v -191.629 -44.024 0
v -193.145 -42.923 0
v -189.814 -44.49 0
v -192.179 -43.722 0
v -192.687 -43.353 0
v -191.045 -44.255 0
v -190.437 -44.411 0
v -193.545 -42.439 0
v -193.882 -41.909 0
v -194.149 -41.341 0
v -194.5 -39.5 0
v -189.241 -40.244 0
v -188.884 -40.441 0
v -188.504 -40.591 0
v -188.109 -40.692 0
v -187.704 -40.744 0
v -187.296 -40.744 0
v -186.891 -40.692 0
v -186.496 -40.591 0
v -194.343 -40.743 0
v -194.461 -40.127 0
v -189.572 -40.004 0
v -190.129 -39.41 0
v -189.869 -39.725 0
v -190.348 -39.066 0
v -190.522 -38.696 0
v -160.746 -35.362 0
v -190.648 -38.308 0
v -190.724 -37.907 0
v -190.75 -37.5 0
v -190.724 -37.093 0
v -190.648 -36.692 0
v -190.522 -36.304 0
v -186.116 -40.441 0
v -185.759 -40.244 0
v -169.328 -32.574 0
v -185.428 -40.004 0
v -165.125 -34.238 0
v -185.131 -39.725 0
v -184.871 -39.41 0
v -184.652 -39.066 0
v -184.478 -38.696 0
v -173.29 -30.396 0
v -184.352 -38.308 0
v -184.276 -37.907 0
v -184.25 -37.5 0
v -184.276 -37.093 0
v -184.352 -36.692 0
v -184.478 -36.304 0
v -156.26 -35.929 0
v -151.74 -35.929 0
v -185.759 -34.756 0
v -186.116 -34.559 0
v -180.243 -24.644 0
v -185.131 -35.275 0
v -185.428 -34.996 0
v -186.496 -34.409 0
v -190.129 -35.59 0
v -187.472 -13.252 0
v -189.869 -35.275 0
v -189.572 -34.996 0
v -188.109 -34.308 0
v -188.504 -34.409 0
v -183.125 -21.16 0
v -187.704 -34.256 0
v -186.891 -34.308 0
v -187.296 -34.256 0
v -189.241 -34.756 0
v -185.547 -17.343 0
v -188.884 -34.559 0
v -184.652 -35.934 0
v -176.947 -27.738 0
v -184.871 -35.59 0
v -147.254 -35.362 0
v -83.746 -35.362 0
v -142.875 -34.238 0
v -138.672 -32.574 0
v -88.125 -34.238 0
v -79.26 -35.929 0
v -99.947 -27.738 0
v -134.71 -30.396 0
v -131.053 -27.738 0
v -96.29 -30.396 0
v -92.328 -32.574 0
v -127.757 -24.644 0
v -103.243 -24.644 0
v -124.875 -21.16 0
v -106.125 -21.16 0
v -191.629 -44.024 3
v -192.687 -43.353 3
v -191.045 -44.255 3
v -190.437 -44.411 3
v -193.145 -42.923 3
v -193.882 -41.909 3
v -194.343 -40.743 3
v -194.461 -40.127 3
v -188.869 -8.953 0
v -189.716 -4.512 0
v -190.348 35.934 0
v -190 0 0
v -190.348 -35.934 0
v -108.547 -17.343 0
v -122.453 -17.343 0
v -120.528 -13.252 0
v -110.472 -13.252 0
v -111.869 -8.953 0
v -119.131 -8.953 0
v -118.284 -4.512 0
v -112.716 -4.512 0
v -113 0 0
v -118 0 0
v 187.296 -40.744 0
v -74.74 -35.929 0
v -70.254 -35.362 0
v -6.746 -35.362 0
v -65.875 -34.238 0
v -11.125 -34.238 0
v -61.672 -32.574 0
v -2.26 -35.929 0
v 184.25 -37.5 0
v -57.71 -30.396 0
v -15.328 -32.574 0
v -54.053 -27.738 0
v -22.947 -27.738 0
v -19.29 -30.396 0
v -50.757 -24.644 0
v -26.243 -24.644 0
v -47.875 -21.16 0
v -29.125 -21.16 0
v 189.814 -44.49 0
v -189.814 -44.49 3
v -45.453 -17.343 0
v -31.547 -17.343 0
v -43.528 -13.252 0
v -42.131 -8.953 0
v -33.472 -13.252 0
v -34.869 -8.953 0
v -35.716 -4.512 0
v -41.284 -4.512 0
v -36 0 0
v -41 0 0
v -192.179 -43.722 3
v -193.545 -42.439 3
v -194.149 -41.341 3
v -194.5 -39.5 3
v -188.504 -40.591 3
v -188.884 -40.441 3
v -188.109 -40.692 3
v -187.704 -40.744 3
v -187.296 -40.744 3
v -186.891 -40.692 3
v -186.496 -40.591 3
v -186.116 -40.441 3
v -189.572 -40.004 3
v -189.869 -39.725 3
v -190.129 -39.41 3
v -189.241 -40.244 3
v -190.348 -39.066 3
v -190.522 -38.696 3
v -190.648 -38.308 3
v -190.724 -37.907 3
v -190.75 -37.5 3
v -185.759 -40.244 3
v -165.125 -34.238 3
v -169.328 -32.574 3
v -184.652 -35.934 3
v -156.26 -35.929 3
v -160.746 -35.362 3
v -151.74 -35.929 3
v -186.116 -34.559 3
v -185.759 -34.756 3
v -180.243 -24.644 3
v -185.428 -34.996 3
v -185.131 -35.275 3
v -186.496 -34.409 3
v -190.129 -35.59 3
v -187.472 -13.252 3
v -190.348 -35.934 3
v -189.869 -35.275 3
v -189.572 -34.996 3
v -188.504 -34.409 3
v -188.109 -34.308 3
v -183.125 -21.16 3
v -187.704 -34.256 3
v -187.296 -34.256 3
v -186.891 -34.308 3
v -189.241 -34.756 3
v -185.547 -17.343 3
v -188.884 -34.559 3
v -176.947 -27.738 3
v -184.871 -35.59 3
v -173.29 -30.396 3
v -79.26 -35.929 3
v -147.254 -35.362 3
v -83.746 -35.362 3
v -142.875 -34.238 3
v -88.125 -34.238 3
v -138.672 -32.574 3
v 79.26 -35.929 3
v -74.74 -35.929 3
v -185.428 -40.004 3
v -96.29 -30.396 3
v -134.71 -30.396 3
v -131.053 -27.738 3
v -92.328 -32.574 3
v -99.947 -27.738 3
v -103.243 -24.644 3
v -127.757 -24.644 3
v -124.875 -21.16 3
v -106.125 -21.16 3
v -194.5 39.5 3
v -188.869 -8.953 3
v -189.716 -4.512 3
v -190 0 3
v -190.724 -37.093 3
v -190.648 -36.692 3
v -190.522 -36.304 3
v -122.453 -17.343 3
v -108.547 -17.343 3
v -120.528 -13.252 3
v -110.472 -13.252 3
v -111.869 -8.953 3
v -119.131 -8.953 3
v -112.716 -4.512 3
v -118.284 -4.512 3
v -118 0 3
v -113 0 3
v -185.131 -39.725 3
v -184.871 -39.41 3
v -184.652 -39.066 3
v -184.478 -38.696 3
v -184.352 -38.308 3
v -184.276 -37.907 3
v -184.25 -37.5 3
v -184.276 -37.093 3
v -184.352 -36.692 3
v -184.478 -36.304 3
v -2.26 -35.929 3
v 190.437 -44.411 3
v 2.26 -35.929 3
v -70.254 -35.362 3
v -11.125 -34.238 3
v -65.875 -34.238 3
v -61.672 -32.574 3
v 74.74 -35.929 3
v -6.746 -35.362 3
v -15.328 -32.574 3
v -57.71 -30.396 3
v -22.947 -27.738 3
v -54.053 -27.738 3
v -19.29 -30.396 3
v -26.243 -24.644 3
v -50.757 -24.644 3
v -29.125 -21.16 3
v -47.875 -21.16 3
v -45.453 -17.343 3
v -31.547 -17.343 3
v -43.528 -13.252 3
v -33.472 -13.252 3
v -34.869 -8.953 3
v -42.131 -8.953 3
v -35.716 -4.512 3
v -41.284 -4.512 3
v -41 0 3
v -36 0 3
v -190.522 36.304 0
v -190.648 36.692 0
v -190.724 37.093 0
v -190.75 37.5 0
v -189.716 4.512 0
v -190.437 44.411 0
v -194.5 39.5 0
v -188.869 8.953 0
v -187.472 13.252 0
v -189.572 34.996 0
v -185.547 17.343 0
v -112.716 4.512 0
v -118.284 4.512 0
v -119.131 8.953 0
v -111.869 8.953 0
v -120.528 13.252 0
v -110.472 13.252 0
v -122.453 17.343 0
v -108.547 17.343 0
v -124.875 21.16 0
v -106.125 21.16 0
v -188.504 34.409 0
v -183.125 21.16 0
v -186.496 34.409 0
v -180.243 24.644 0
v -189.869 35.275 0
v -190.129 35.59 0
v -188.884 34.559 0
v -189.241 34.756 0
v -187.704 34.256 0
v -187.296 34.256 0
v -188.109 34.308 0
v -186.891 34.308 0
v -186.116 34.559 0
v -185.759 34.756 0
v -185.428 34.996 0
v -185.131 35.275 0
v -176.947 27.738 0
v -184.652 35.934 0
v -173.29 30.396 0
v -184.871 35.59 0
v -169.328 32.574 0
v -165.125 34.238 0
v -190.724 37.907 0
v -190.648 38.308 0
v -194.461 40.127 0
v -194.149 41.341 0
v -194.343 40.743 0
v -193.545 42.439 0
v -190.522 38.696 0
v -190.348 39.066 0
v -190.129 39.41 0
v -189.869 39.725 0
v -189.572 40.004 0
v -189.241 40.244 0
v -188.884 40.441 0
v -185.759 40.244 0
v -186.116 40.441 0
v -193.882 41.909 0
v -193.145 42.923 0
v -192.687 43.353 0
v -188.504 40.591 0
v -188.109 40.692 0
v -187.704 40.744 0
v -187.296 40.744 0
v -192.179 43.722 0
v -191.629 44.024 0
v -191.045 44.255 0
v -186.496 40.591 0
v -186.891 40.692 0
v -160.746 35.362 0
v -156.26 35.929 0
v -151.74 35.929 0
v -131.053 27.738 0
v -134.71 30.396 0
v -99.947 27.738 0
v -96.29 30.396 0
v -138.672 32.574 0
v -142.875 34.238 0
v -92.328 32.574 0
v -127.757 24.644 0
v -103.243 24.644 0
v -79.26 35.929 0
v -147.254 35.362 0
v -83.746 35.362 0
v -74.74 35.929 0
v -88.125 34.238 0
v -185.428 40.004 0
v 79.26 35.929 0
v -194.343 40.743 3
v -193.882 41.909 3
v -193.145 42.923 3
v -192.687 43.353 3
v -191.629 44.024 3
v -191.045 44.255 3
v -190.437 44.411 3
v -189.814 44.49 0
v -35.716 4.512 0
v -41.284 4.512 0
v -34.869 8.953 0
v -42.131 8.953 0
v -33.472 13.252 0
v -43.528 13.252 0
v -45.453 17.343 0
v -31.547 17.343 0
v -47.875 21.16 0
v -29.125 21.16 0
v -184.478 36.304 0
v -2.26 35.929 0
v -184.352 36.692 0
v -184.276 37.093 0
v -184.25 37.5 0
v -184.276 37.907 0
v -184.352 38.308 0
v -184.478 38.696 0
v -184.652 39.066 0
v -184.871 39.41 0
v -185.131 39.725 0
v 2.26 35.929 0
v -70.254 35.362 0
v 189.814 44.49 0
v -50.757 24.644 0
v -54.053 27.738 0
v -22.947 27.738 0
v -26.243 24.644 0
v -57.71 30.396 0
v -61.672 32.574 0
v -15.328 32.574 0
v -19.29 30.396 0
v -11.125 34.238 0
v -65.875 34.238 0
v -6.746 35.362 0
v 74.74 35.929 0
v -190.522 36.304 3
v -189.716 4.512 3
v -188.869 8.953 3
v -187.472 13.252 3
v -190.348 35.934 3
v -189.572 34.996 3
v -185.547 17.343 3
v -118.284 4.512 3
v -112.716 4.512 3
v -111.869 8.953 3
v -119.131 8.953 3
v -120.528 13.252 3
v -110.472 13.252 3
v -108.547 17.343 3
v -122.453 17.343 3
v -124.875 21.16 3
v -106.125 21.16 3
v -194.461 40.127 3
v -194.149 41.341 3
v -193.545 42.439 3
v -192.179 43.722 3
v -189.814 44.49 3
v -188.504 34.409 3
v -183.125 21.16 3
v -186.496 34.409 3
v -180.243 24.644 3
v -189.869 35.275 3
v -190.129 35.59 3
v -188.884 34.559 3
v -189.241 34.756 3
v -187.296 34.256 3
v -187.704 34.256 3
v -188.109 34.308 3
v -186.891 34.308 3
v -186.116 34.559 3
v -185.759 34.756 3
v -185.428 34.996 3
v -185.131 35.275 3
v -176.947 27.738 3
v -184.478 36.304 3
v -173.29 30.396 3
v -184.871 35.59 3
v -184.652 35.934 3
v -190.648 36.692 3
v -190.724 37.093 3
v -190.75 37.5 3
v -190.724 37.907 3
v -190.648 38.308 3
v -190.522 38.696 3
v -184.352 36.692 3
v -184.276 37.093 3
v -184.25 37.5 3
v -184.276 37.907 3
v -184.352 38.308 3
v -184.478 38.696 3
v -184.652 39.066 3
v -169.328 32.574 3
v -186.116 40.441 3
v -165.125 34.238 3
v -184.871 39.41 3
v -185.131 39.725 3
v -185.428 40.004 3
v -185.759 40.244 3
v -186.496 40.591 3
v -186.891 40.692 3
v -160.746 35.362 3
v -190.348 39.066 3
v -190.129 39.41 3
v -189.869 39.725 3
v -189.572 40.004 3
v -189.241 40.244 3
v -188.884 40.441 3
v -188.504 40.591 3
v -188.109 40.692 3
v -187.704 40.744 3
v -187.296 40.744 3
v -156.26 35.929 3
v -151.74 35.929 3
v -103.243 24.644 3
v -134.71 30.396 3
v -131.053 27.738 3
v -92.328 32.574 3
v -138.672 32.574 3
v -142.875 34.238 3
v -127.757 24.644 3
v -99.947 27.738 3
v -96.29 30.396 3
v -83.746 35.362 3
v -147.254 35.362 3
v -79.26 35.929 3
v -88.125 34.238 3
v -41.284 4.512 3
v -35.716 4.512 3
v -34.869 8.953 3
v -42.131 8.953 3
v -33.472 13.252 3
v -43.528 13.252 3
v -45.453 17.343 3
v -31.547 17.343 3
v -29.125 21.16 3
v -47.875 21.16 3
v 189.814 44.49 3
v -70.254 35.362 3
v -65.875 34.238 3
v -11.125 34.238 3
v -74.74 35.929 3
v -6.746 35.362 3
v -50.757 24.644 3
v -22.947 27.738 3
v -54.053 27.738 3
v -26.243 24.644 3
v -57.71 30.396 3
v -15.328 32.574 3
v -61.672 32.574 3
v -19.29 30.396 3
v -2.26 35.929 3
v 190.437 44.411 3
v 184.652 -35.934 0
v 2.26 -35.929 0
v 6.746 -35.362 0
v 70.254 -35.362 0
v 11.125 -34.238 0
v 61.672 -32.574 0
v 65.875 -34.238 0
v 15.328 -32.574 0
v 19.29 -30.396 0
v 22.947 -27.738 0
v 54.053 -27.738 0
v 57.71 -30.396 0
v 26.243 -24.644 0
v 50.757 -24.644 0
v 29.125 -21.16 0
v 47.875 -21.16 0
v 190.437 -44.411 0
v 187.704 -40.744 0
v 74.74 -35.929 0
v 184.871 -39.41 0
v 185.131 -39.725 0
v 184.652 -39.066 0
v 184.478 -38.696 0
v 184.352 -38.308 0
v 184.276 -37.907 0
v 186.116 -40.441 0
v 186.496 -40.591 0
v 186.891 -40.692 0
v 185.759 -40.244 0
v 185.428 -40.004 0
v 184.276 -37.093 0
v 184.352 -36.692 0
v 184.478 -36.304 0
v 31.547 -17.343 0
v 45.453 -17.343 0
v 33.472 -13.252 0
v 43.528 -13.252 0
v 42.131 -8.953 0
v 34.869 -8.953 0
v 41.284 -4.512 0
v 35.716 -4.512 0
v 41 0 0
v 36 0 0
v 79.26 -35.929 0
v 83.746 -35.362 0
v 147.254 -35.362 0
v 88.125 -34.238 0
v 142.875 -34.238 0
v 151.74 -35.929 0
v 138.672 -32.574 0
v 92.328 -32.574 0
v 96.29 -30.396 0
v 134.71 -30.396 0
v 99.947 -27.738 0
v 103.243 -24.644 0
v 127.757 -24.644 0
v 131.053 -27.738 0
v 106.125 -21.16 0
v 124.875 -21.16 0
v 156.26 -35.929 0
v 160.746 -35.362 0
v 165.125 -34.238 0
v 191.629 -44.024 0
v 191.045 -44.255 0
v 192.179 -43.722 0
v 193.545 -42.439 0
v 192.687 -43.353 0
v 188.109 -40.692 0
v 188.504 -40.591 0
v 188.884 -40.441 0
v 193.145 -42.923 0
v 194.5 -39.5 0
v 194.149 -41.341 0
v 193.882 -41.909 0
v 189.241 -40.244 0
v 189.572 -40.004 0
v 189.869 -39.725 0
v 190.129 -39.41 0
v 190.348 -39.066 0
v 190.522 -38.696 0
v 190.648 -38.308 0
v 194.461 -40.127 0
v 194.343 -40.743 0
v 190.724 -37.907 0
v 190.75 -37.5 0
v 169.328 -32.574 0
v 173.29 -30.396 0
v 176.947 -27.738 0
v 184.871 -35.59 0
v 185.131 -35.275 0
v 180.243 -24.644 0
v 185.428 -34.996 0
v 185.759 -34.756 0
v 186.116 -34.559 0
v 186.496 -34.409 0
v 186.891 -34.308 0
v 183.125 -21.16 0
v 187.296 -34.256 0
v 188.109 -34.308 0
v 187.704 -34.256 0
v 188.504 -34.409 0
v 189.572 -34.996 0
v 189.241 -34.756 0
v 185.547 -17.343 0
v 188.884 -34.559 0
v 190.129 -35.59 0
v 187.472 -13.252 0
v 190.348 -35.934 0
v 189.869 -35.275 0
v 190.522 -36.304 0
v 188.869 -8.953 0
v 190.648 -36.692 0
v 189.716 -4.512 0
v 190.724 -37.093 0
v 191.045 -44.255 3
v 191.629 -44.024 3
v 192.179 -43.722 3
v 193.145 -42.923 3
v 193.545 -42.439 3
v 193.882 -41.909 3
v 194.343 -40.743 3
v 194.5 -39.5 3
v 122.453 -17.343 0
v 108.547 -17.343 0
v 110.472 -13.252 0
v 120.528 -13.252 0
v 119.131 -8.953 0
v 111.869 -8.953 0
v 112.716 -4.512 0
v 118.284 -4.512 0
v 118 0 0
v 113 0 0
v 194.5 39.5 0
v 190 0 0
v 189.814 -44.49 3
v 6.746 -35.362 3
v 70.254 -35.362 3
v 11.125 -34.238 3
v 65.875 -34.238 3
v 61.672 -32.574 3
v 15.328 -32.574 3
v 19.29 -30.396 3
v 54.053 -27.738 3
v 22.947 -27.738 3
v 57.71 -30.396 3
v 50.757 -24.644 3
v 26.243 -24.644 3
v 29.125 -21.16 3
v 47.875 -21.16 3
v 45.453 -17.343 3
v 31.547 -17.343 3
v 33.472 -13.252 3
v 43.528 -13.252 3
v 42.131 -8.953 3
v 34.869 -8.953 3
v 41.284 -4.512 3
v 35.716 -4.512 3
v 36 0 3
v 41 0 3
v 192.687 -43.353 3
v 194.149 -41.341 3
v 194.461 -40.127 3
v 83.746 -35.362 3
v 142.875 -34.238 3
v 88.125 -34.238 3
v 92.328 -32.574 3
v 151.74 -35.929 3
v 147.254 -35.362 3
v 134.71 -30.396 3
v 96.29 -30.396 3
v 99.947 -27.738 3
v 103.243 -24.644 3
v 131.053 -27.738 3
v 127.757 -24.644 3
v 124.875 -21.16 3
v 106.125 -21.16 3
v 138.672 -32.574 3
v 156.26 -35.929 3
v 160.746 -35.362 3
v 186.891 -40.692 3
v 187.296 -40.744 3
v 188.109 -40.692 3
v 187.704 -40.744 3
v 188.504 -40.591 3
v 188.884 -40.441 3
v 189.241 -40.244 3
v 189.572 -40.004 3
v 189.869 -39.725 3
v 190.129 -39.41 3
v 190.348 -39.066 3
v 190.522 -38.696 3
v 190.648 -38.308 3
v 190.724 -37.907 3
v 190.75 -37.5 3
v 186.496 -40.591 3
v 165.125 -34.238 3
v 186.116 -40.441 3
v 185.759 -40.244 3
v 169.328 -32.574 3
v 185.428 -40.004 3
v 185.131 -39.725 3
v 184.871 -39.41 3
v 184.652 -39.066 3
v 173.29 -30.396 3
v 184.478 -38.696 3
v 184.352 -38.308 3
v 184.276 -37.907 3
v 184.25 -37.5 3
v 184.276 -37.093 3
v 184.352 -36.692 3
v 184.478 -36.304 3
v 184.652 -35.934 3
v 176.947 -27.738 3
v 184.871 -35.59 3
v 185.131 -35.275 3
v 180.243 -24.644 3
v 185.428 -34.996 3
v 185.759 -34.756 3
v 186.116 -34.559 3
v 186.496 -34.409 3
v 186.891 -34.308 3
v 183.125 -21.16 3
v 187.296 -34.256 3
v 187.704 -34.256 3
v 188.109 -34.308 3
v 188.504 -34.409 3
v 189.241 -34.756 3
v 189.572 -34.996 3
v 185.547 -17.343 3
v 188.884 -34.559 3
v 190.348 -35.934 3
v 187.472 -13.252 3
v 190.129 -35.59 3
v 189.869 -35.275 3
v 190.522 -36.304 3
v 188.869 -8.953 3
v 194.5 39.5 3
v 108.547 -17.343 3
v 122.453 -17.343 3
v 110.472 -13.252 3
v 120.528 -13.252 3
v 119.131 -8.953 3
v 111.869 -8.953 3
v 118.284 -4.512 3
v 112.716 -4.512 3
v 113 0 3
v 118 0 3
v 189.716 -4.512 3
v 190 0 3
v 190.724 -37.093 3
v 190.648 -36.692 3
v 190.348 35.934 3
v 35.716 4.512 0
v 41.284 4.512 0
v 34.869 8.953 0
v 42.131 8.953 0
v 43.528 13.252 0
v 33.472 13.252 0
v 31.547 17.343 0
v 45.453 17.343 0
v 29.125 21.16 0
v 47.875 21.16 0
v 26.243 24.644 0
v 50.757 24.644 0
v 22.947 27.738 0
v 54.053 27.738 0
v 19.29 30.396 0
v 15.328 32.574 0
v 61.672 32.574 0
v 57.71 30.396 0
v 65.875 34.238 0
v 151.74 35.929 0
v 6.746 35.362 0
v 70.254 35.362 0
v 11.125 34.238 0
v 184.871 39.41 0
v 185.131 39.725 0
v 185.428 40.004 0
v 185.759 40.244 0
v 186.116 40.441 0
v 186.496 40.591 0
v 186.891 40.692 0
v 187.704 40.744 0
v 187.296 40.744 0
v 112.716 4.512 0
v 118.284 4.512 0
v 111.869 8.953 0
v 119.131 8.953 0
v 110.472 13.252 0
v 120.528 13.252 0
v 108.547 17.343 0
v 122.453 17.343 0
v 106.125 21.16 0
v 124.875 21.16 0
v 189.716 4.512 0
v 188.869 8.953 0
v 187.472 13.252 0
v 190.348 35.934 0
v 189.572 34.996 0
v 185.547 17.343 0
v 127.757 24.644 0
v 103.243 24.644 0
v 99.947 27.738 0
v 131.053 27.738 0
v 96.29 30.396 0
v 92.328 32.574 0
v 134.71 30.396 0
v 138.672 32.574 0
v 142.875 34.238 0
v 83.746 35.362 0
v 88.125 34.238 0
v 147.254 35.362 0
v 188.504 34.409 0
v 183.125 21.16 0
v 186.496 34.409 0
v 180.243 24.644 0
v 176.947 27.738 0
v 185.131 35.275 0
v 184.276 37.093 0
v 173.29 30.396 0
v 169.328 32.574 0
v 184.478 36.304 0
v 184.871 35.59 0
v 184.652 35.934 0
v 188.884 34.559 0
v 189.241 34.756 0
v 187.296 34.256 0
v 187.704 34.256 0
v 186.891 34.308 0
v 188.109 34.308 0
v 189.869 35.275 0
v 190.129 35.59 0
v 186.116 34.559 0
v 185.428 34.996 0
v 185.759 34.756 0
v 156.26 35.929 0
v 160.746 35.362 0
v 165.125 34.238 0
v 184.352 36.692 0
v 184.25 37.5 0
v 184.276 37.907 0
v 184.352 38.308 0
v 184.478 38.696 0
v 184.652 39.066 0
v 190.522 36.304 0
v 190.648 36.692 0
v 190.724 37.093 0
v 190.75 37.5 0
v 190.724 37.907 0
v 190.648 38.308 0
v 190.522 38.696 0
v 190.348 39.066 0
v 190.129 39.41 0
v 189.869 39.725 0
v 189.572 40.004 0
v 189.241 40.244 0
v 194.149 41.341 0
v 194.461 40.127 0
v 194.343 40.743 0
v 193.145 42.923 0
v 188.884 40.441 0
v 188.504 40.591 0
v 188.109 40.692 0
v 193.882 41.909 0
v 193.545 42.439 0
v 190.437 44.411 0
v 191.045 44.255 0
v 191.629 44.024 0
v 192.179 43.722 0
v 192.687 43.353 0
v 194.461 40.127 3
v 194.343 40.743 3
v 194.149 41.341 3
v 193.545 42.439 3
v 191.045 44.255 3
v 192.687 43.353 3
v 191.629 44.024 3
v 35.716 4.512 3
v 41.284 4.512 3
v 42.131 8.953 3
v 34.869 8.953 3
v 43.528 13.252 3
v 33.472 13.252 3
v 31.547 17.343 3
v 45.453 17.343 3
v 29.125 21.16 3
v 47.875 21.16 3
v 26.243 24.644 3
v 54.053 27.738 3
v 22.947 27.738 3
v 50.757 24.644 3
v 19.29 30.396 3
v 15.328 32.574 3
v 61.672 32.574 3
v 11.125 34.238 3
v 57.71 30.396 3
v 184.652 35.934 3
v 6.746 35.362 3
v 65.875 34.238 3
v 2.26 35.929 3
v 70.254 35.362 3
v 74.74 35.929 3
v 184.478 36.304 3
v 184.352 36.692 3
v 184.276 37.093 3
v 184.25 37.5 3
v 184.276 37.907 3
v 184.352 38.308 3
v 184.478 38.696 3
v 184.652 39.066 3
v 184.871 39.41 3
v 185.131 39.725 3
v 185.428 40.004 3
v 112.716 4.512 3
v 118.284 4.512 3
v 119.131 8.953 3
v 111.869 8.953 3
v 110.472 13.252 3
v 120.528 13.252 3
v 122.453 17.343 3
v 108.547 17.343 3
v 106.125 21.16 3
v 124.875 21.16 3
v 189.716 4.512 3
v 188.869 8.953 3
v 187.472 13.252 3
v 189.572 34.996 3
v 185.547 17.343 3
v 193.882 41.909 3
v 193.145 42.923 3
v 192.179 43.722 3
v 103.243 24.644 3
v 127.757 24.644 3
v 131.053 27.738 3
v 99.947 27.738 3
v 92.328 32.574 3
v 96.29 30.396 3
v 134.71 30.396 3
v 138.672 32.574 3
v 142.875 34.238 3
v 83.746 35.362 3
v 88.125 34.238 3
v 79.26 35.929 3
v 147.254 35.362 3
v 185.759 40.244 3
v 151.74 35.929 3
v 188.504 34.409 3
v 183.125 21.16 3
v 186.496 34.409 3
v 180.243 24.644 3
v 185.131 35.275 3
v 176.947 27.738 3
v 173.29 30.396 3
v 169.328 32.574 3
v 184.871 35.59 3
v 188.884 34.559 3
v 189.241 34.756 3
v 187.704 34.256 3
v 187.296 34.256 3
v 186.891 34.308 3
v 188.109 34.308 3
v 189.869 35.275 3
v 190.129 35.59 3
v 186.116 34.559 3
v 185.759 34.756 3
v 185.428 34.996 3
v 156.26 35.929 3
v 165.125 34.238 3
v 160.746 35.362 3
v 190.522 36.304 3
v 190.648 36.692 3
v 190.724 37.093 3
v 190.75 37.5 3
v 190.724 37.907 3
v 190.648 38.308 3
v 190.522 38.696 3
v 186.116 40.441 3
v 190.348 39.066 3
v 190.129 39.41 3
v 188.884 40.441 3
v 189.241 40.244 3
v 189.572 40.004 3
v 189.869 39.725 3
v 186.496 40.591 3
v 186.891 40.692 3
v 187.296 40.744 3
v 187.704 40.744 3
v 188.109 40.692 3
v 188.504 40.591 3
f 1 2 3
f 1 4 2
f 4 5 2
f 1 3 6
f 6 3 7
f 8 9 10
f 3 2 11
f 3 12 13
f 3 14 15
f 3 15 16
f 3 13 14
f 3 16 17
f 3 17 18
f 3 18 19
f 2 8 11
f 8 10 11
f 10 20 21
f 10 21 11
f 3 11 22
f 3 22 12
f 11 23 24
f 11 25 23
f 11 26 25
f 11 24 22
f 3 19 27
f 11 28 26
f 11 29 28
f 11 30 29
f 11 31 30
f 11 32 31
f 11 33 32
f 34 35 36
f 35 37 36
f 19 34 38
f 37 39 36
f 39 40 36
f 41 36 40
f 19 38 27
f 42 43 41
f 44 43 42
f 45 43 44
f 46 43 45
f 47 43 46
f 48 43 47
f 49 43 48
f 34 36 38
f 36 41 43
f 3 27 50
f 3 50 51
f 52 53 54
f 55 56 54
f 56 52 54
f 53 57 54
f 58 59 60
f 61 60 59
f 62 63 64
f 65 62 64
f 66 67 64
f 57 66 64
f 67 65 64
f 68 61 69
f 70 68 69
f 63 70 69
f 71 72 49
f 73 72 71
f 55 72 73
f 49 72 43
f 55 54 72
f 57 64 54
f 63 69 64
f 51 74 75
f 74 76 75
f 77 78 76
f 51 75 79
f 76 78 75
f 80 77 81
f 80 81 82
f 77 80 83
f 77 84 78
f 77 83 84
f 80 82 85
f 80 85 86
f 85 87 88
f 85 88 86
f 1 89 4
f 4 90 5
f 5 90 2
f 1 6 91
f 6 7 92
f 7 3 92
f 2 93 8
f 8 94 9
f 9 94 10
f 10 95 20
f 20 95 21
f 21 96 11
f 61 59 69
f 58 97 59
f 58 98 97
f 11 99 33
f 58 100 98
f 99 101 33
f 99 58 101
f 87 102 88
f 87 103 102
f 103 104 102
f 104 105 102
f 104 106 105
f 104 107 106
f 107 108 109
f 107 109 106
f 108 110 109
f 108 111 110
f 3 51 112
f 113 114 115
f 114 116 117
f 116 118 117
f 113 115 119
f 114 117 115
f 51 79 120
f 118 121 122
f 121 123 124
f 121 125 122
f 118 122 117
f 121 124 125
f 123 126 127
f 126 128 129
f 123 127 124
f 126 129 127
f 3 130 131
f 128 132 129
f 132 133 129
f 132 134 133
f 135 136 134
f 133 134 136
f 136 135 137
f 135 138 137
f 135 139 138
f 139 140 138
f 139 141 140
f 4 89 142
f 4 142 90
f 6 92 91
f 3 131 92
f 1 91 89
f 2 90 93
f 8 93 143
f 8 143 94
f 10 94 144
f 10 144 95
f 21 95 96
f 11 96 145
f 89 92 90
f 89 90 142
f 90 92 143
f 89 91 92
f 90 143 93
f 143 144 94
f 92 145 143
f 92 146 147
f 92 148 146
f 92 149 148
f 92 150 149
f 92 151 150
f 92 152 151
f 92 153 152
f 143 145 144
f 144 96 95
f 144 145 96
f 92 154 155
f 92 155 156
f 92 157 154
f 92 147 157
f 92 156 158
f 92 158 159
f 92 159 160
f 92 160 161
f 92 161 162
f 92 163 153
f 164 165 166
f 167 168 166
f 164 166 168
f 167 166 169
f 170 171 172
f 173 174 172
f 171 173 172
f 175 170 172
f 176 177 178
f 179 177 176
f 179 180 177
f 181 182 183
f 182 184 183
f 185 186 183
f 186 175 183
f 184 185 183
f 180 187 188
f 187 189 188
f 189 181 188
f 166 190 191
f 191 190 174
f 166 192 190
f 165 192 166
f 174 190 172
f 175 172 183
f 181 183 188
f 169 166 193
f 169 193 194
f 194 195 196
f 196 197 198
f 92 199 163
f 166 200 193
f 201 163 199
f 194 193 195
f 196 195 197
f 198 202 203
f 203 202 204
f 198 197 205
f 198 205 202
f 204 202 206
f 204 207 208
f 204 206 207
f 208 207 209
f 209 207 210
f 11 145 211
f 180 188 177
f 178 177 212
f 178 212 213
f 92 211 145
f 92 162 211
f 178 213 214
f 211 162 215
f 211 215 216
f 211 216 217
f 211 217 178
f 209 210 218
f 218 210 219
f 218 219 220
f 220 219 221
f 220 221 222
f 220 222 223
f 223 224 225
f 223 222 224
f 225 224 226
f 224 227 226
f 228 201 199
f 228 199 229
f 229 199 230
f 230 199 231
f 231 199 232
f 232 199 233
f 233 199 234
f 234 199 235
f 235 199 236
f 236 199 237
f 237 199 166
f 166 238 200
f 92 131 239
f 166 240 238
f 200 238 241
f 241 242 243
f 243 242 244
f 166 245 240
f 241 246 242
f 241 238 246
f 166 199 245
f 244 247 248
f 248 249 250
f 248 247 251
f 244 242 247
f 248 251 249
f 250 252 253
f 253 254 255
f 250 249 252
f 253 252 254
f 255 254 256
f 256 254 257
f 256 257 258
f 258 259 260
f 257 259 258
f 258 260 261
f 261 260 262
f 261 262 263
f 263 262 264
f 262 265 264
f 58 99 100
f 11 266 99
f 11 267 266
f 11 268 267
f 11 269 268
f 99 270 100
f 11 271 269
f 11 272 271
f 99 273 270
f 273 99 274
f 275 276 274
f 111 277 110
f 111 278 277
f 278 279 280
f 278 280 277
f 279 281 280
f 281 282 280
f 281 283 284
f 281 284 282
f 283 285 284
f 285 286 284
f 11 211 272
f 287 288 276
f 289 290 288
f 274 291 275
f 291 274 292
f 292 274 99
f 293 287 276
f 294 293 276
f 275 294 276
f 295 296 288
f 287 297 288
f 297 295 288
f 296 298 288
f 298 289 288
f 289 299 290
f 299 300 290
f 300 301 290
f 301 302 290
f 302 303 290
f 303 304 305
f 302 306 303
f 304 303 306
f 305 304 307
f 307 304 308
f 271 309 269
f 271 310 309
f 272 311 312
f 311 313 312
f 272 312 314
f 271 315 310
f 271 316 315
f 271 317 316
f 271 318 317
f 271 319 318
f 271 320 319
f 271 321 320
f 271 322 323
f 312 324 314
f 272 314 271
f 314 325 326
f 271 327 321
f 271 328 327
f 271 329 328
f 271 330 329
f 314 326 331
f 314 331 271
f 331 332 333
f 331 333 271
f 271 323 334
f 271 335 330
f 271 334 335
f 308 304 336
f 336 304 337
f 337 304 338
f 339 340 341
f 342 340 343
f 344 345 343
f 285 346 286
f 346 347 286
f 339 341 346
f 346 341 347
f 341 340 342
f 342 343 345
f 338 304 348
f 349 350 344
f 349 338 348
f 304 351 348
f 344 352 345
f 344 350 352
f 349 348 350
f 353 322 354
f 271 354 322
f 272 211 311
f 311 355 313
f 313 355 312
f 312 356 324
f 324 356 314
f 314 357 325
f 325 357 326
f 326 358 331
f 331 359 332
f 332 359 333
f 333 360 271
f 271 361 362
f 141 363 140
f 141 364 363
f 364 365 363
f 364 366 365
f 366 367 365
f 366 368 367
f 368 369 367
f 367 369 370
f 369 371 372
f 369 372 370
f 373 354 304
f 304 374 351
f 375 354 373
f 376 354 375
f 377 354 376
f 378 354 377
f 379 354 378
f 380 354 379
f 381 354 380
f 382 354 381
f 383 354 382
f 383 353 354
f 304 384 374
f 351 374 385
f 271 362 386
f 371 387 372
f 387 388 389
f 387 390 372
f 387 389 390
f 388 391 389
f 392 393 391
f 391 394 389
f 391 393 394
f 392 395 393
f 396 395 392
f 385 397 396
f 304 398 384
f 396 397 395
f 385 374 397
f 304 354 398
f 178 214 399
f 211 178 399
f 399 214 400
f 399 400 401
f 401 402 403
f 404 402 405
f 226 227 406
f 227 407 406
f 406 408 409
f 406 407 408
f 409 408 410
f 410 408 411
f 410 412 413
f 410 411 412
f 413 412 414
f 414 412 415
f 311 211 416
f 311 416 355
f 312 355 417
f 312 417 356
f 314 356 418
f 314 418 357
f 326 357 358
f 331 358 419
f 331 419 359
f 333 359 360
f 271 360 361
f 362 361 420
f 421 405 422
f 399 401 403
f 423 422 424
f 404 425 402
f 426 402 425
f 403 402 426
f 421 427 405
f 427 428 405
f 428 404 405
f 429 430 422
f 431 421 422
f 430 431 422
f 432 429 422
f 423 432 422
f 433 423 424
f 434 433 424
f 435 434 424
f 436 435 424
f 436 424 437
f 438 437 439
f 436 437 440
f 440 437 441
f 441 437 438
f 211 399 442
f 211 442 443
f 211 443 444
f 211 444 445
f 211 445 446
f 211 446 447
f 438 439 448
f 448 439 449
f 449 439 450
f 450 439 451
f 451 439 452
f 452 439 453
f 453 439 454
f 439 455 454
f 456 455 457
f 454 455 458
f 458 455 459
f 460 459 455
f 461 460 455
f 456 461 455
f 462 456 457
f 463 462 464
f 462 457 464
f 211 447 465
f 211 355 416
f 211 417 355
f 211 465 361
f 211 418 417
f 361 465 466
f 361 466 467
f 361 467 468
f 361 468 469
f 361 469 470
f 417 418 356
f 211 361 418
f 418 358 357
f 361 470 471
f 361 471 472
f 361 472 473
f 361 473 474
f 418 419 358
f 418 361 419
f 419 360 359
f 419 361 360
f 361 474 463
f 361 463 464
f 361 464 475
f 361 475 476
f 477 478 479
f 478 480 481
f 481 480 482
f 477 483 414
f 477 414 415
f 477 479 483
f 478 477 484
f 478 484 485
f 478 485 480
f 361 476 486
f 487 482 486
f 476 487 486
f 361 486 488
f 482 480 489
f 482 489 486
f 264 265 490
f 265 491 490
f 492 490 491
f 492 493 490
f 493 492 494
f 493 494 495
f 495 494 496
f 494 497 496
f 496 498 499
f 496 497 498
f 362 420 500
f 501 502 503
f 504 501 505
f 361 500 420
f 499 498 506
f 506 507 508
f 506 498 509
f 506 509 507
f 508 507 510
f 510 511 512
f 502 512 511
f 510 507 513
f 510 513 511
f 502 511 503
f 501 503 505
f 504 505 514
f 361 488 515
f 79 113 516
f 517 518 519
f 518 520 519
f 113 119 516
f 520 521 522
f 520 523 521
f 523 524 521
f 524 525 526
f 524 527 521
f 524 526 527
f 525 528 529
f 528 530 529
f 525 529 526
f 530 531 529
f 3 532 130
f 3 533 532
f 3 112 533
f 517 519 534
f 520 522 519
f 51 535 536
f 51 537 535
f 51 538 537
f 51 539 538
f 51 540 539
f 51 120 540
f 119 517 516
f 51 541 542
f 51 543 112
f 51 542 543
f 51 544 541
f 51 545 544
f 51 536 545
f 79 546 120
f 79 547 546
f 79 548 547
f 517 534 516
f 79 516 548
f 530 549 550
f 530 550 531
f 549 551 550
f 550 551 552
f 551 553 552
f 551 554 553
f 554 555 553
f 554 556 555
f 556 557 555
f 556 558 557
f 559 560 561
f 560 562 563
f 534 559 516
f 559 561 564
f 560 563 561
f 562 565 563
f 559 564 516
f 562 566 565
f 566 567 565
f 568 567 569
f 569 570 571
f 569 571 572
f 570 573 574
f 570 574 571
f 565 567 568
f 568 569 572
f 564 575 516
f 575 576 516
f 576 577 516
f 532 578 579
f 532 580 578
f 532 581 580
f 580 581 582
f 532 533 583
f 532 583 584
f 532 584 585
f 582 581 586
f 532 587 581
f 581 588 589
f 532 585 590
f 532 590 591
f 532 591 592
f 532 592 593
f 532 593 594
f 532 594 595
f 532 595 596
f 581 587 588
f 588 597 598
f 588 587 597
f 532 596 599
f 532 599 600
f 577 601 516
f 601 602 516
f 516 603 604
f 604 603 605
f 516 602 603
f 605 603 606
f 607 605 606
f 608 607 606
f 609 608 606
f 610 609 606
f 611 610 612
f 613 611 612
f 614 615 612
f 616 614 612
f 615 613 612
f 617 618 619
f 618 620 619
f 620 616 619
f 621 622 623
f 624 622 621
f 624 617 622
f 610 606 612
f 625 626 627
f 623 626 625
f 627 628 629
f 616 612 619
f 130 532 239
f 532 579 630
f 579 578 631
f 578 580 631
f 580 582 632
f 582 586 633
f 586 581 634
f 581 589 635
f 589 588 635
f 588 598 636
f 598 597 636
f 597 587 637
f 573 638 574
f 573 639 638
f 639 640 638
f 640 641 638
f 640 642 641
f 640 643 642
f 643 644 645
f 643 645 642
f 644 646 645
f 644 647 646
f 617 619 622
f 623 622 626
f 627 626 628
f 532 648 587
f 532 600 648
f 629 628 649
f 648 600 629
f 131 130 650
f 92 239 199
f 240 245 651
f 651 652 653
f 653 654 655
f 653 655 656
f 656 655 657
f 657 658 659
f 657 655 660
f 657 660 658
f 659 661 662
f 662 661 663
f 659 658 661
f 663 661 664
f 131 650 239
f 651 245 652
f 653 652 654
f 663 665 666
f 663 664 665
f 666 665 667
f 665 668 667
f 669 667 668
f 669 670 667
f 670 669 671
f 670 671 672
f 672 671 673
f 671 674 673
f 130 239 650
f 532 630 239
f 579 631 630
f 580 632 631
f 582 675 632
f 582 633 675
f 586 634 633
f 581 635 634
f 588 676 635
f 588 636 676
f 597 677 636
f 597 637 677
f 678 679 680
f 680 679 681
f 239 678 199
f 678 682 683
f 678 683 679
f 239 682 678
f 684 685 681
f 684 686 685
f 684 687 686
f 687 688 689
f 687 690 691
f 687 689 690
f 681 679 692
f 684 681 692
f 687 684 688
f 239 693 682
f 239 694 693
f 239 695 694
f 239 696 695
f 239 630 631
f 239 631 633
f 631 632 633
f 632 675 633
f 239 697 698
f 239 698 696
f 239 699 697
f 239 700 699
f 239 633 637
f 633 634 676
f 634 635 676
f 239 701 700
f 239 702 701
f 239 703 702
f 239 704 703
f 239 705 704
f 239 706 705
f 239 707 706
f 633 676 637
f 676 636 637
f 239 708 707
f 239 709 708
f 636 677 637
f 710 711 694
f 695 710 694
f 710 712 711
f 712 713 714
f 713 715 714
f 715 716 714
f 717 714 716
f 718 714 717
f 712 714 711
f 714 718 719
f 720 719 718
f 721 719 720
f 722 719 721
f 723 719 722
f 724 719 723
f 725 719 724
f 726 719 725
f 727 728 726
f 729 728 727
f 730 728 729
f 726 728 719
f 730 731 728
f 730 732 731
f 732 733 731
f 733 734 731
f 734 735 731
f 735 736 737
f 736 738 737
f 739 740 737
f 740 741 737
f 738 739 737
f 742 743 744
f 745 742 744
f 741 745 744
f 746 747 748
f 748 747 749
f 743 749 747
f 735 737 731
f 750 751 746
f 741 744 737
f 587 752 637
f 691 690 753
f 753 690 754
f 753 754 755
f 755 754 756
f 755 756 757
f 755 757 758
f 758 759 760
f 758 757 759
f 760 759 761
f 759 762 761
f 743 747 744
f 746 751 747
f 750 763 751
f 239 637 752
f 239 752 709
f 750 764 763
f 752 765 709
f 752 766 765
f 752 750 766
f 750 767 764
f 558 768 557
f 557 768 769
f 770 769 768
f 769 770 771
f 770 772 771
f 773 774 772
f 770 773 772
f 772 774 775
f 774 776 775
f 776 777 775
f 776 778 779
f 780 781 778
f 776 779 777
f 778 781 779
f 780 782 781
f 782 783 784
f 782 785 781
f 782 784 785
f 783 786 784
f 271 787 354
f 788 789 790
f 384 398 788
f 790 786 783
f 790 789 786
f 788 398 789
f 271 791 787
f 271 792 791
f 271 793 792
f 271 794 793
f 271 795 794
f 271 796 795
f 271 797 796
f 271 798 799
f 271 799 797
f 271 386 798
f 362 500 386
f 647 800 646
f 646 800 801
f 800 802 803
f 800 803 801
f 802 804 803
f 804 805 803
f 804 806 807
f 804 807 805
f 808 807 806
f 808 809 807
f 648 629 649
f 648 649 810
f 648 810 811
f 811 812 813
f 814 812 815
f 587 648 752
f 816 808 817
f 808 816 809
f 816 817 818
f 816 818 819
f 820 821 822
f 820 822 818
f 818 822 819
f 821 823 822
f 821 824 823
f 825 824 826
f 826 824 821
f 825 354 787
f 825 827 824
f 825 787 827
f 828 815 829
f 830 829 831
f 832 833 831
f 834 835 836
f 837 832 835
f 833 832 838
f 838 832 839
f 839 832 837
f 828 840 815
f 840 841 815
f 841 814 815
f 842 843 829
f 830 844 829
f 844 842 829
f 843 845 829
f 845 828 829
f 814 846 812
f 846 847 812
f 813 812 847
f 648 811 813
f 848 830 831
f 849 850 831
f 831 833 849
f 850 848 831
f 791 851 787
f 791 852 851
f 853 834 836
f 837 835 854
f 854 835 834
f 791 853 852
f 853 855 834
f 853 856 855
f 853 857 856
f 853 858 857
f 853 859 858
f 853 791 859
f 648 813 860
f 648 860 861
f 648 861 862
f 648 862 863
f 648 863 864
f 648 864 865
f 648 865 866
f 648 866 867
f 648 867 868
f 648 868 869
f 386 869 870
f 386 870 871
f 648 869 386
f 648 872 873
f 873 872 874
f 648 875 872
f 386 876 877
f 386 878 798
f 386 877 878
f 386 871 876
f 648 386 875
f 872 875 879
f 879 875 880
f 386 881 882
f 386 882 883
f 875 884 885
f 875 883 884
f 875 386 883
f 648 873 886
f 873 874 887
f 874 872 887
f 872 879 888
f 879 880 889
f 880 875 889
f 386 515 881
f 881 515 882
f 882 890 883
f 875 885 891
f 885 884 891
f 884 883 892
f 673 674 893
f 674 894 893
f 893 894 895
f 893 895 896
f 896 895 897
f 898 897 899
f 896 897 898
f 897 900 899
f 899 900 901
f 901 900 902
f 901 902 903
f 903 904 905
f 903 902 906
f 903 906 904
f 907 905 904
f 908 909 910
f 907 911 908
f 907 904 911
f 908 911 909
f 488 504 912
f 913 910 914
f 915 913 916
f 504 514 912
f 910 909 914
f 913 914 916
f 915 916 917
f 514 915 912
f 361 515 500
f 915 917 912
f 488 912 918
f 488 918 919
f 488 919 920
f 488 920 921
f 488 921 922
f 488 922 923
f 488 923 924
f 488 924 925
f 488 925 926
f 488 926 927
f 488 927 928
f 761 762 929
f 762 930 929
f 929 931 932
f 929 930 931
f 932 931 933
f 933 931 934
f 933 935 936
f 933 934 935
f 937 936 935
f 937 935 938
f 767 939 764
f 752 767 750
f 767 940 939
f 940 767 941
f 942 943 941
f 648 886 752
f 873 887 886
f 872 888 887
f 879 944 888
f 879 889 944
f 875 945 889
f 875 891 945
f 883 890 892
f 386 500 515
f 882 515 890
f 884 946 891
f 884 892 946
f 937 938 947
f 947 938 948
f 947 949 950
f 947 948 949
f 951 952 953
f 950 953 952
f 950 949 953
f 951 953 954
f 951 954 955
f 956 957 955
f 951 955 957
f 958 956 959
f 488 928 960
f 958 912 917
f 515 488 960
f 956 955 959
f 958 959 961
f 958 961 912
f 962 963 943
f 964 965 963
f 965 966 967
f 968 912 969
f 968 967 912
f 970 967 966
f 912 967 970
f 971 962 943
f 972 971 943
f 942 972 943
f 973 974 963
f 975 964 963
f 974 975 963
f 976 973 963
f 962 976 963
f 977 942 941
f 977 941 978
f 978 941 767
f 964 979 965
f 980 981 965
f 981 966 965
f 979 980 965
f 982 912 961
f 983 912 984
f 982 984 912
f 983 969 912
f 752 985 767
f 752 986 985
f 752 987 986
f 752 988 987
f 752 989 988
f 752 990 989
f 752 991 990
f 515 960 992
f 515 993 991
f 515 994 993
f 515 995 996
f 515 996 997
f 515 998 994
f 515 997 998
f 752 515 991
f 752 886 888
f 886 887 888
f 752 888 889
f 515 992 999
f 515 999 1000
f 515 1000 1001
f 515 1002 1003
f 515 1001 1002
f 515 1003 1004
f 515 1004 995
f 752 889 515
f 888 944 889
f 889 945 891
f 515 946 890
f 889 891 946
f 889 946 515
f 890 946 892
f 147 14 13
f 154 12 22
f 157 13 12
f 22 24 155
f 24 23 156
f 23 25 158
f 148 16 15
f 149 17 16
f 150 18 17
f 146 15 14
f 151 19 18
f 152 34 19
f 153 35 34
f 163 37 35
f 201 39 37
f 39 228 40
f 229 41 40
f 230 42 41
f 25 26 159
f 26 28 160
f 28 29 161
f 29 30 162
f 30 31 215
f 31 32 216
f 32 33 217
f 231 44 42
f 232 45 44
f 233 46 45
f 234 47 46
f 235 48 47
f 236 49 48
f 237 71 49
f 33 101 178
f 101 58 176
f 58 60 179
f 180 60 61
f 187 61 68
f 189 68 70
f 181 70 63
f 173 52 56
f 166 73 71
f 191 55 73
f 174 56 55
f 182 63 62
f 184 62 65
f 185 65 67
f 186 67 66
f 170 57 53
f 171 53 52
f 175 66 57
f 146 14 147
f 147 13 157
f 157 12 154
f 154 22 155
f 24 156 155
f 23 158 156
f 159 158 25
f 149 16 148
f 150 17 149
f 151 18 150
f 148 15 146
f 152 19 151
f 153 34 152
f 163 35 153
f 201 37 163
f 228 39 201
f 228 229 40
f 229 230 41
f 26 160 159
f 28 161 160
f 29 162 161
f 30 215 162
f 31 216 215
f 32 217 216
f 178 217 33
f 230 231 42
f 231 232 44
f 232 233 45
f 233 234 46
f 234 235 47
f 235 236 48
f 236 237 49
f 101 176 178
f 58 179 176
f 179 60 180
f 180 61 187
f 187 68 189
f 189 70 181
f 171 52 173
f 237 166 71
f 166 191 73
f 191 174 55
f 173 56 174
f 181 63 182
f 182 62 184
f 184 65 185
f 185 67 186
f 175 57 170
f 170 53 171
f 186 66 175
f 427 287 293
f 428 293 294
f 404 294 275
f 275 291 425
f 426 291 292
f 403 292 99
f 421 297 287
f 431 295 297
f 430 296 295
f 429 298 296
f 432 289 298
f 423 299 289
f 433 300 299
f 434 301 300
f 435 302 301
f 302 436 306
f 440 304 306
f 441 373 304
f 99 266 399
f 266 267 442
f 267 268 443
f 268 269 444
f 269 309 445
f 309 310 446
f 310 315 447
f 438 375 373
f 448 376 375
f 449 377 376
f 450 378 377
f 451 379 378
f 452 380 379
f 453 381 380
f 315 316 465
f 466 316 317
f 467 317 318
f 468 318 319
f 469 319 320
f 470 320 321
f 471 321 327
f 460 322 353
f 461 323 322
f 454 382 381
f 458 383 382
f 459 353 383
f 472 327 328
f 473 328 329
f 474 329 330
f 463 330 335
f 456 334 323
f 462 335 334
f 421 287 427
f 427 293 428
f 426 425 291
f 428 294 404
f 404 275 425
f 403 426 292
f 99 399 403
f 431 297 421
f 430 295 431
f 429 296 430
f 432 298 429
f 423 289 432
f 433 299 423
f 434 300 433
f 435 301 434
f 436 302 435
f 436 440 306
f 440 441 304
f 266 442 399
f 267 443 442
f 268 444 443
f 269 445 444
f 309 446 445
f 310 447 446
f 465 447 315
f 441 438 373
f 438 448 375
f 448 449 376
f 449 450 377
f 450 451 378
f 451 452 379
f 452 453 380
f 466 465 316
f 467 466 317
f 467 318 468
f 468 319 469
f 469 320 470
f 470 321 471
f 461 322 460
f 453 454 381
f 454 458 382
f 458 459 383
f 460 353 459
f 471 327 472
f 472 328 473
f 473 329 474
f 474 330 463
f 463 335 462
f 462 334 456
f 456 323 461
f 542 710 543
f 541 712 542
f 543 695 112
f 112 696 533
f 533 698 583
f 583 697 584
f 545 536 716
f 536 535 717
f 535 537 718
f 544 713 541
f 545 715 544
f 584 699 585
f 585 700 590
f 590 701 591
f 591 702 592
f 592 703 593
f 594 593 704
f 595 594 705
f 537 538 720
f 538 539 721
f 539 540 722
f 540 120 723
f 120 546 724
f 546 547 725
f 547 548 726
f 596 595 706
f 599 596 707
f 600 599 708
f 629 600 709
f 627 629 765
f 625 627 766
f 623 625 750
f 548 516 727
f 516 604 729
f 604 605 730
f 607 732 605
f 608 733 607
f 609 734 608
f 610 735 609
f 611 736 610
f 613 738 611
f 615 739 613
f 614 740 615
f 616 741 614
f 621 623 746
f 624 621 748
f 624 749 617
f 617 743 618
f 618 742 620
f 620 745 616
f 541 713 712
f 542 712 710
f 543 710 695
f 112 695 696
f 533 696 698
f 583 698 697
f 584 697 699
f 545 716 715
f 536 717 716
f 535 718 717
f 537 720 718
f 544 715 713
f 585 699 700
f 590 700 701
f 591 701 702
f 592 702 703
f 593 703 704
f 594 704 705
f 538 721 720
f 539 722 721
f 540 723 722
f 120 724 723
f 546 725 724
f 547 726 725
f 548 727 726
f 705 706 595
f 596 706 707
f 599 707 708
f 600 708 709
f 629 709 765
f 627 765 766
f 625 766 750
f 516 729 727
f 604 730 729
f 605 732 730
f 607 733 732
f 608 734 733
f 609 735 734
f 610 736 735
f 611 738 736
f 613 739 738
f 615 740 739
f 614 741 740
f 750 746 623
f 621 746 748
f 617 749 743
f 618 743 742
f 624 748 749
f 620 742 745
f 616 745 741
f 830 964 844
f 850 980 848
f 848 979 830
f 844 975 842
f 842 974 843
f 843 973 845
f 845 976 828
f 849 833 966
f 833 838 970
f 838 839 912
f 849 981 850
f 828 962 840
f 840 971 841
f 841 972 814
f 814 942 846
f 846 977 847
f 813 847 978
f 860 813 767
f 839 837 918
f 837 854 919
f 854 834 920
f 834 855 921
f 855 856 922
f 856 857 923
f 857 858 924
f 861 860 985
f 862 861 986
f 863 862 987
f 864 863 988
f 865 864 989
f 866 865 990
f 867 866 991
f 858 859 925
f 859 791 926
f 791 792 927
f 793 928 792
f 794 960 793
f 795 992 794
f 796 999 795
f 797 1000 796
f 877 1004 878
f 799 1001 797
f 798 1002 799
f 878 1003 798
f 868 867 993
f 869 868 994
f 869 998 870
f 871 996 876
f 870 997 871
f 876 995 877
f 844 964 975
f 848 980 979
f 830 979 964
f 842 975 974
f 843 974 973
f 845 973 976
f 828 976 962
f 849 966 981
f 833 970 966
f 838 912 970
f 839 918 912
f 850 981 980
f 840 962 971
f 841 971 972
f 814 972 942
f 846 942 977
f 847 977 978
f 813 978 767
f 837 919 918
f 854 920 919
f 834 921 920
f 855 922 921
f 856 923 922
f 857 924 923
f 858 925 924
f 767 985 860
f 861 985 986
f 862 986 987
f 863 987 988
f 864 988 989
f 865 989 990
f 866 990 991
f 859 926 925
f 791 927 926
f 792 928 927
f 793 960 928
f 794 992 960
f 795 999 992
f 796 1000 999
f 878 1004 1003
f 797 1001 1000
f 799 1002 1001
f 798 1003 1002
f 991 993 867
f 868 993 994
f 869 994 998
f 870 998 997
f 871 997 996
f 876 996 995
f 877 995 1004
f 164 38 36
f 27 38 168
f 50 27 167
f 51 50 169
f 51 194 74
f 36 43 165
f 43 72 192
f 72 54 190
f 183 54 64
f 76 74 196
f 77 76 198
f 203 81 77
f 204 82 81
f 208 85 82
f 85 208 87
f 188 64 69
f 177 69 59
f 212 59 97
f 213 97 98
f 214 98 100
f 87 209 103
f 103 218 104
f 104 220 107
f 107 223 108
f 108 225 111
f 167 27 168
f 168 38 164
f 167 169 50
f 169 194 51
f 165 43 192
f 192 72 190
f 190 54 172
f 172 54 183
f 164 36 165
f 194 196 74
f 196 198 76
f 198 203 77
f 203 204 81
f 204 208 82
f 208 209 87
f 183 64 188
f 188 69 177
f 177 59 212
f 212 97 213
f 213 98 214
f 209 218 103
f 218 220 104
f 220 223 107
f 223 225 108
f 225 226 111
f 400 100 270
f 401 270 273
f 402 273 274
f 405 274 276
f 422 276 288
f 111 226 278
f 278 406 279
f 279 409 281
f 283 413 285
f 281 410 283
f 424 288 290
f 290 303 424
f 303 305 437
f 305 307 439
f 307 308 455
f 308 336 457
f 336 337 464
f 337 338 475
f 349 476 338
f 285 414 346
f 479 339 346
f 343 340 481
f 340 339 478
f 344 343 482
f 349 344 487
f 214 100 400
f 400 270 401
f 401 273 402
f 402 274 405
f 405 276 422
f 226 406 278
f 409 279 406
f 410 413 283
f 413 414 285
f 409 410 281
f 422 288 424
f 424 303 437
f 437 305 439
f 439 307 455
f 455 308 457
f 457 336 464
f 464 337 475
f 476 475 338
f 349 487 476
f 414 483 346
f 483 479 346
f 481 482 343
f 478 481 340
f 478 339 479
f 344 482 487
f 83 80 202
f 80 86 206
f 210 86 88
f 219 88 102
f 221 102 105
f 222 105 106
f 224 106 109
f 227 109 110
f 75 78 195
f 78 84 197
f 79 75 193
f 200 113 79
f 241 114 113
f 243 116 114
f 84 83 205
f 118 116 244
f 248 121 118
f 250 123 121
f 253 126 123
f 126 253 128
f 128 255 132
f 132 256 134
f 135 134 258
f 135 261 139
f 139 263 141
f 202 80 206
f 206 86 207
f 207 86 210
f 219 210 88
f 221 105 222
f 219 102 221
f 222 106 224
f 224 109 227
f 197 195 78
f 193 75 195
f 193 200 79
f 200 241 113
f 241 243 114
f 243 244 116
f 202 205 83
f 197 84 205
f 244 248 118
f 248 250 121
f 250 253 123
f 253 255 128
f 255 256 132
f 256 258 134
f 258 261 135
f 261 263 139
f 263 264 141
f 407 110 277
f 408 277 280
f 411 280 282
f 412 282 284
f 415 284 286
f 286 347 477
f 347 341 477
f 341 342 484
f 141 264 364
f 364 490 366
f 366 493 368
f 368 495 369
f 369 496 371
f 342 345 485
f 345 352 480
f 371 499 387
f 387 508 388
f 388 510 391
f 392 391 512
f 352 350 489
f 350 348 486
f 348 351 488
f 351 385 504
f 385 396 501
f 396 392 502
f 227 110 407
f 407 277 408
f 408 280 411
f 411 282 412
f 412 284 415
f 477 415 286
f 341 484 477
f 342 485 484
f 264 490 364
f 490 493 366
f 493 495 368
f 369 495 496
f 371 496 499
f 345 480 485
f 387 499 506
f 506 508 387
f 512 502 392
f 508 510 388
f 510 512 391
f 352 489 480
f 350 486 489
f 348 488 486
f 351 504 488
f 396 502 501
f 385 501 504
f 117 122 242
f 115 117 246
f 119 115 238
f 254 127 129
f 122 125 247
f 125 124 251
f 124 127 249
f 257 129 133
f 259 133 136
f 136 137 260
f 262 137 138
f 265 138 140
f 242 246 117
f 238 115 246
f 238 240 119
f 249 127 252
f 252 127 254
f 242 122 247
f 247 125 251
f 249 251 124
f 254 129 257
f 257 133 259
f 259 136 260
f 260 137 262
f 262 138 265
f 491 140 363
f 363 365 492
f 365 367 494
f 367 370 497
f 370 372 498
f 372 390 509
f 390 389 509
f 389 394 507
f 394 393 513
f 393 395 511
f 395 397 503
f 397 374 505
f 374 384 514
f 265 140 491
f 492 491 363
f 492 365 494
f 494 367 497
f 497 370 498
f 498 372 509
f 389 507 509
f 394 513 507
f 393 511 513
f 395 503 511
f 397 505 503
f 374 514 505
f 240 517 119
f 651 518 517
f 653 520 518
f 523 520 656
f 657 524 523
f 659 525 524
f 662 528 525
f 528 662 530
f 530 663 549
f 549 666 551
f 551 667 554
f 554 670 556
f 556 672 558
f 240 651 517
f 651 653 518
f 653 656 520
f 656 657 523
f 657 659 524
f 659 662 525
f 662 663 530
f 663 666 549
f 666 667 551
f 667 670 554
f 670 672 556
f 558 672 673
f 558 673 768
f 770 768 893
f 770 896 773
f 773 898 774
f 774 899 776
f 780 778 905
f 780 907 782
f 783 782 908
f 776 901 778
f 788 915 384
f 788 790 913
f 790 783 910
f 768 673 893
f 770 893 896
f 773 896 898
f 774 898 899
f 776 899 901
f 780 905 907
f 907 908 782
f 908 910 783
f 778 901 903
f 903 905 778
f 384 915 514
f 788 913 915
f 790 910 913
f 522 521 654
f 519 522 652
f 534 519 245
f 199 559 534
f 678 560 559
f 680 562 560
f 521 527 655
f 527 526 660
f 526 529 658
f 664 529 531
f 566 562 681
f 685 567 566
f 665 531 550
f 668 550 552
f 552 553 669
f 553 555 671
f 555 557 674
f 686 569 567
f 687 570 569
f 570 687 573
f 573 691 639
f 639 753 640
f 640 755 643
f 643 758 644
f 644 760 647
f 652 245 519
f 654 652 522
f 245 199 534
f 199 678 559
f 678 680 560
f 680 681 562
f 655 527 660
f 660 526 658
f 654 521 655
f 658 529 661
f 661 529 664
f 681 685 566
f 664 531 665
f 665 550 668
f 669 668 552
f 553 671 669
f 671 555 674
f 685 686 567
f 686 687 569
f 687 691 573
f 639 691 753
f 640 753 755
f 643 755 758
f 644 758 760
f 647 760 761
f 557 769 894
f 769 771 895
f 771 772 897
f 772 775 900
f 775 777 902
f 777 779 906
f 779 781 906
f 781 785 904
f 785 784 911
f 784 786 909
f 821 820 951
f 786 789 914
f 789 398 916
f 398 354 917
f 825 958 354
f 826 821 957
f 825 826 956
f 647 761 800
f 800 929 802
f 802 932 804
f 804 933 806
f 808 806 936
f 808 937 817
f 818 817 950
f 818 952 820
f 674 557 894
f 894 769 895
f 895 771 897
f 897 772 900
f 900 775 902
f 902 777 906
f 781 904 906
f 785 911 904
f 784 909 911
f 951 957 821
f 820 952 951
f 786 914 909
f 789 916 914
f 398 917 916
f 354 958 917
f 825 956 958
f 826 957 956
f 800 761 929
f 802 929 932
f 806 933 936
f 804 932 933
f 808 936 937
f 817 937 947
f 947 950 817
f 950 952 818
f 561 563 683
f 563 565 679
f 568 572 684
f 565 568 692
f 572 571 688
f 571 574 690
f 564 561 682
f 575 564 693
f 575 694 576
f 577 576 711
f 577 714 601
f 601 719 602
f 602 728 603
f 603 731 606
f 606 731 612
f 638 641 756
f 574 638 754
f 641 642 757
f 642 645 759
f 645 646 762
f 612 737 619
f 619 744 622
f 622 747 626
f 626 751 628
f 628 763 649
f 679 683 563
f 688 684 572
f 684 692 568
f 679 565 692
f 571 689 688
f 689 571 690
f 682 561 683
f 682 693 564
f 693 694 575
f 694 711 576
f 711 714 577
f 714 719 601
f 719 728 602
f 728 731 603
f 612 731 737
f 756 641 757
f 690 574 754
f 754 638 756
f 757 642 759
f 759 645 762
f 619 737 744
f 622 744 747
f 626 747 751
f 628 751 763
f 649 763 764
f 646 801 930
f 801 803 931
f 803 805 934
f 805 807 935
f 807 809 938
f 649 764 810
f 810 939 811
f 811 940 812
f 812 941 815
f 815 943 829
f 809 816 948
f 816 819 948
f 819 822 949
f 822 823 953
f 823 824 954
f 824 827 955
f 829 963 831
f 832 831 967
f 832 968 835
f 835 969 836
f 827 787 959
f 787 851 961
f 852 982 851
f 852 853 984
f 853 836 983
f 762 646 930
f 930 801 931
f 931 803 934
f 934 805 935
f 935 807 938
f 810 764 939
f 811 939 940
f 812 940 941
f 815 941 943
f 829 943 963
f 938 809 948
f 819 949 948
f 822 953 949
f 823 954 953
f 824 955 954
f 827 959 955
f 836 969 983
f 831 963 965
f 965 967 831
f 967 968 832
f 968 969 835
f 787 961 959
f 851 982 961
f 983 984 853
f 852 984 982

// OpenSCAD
$fn = 50;

difference() {
	union() {
		hull() {
			translate(v = [-189.5, 39.5, 0]) {
				cylinder(h = 3, r = 5);
			}
			translate(v = [189.5, 39.5, 0]) {
				cylinder(h = 3, r = 5);
			}
			translate(v = [-189.5, -39.5, 0]) {
				cylinder(h = 3, r = 5);
			}
			translate(v = [189.5, -39.5, 0]) {
				cylinder(h = 3, r = 5);
			}
		}
	}
	union() {
		translate(v = [-187.5, -37.5, -100.0]) {
			cylinder(h = 200, r = 3.25);
		}
		translate(v = [-187.5, 37.5, -100.0]) {
			cylinder(h = 200, r = 3.25);
		}
		translate(v = [187.5, -37.5, -100.0]) {
			cylinder(h = 200, r = 3.25);
		}
		translate(v = [187.5, 37.5, -100.0]) {
			cylinder(h = 200, r = 3.25);
		}
		translate(v = [-187.5, -37.5, -100.0]) {
			cylinder(h = 200, r = 1.8);
		}
		translate(v = [-187.5, 37.5, -100.0]) {
			cylinder(h = 200, r = 1.8);
		}
		translate(v = [187.5, -37.5, -100.0]) {
			cylinder(h = 200, r = 1.8);
		}
		translate(v = [187.5, 37.5, -100.0]) {
			cylinder(h = 200, r = 1.8);
		}
		translate(v = [-154.0, 0, 0.0]) {
			cylinder(h = 3, r = 36.0);
		}
		translate(v = [-77.0, 0, 0.0]) {
			cylinder(h = 3, r = 36.0);
		}
		cylinder(h = 3, r = 36.0);
		translate(v = [77.0, 0, 0.0]) {
			cylinder(h = 3, r = 36.0);
		}
		translate(v = [154.0, 0, 0.0]) {
			cylinder(h = 3, r = 36.0);
		}
	}
}
